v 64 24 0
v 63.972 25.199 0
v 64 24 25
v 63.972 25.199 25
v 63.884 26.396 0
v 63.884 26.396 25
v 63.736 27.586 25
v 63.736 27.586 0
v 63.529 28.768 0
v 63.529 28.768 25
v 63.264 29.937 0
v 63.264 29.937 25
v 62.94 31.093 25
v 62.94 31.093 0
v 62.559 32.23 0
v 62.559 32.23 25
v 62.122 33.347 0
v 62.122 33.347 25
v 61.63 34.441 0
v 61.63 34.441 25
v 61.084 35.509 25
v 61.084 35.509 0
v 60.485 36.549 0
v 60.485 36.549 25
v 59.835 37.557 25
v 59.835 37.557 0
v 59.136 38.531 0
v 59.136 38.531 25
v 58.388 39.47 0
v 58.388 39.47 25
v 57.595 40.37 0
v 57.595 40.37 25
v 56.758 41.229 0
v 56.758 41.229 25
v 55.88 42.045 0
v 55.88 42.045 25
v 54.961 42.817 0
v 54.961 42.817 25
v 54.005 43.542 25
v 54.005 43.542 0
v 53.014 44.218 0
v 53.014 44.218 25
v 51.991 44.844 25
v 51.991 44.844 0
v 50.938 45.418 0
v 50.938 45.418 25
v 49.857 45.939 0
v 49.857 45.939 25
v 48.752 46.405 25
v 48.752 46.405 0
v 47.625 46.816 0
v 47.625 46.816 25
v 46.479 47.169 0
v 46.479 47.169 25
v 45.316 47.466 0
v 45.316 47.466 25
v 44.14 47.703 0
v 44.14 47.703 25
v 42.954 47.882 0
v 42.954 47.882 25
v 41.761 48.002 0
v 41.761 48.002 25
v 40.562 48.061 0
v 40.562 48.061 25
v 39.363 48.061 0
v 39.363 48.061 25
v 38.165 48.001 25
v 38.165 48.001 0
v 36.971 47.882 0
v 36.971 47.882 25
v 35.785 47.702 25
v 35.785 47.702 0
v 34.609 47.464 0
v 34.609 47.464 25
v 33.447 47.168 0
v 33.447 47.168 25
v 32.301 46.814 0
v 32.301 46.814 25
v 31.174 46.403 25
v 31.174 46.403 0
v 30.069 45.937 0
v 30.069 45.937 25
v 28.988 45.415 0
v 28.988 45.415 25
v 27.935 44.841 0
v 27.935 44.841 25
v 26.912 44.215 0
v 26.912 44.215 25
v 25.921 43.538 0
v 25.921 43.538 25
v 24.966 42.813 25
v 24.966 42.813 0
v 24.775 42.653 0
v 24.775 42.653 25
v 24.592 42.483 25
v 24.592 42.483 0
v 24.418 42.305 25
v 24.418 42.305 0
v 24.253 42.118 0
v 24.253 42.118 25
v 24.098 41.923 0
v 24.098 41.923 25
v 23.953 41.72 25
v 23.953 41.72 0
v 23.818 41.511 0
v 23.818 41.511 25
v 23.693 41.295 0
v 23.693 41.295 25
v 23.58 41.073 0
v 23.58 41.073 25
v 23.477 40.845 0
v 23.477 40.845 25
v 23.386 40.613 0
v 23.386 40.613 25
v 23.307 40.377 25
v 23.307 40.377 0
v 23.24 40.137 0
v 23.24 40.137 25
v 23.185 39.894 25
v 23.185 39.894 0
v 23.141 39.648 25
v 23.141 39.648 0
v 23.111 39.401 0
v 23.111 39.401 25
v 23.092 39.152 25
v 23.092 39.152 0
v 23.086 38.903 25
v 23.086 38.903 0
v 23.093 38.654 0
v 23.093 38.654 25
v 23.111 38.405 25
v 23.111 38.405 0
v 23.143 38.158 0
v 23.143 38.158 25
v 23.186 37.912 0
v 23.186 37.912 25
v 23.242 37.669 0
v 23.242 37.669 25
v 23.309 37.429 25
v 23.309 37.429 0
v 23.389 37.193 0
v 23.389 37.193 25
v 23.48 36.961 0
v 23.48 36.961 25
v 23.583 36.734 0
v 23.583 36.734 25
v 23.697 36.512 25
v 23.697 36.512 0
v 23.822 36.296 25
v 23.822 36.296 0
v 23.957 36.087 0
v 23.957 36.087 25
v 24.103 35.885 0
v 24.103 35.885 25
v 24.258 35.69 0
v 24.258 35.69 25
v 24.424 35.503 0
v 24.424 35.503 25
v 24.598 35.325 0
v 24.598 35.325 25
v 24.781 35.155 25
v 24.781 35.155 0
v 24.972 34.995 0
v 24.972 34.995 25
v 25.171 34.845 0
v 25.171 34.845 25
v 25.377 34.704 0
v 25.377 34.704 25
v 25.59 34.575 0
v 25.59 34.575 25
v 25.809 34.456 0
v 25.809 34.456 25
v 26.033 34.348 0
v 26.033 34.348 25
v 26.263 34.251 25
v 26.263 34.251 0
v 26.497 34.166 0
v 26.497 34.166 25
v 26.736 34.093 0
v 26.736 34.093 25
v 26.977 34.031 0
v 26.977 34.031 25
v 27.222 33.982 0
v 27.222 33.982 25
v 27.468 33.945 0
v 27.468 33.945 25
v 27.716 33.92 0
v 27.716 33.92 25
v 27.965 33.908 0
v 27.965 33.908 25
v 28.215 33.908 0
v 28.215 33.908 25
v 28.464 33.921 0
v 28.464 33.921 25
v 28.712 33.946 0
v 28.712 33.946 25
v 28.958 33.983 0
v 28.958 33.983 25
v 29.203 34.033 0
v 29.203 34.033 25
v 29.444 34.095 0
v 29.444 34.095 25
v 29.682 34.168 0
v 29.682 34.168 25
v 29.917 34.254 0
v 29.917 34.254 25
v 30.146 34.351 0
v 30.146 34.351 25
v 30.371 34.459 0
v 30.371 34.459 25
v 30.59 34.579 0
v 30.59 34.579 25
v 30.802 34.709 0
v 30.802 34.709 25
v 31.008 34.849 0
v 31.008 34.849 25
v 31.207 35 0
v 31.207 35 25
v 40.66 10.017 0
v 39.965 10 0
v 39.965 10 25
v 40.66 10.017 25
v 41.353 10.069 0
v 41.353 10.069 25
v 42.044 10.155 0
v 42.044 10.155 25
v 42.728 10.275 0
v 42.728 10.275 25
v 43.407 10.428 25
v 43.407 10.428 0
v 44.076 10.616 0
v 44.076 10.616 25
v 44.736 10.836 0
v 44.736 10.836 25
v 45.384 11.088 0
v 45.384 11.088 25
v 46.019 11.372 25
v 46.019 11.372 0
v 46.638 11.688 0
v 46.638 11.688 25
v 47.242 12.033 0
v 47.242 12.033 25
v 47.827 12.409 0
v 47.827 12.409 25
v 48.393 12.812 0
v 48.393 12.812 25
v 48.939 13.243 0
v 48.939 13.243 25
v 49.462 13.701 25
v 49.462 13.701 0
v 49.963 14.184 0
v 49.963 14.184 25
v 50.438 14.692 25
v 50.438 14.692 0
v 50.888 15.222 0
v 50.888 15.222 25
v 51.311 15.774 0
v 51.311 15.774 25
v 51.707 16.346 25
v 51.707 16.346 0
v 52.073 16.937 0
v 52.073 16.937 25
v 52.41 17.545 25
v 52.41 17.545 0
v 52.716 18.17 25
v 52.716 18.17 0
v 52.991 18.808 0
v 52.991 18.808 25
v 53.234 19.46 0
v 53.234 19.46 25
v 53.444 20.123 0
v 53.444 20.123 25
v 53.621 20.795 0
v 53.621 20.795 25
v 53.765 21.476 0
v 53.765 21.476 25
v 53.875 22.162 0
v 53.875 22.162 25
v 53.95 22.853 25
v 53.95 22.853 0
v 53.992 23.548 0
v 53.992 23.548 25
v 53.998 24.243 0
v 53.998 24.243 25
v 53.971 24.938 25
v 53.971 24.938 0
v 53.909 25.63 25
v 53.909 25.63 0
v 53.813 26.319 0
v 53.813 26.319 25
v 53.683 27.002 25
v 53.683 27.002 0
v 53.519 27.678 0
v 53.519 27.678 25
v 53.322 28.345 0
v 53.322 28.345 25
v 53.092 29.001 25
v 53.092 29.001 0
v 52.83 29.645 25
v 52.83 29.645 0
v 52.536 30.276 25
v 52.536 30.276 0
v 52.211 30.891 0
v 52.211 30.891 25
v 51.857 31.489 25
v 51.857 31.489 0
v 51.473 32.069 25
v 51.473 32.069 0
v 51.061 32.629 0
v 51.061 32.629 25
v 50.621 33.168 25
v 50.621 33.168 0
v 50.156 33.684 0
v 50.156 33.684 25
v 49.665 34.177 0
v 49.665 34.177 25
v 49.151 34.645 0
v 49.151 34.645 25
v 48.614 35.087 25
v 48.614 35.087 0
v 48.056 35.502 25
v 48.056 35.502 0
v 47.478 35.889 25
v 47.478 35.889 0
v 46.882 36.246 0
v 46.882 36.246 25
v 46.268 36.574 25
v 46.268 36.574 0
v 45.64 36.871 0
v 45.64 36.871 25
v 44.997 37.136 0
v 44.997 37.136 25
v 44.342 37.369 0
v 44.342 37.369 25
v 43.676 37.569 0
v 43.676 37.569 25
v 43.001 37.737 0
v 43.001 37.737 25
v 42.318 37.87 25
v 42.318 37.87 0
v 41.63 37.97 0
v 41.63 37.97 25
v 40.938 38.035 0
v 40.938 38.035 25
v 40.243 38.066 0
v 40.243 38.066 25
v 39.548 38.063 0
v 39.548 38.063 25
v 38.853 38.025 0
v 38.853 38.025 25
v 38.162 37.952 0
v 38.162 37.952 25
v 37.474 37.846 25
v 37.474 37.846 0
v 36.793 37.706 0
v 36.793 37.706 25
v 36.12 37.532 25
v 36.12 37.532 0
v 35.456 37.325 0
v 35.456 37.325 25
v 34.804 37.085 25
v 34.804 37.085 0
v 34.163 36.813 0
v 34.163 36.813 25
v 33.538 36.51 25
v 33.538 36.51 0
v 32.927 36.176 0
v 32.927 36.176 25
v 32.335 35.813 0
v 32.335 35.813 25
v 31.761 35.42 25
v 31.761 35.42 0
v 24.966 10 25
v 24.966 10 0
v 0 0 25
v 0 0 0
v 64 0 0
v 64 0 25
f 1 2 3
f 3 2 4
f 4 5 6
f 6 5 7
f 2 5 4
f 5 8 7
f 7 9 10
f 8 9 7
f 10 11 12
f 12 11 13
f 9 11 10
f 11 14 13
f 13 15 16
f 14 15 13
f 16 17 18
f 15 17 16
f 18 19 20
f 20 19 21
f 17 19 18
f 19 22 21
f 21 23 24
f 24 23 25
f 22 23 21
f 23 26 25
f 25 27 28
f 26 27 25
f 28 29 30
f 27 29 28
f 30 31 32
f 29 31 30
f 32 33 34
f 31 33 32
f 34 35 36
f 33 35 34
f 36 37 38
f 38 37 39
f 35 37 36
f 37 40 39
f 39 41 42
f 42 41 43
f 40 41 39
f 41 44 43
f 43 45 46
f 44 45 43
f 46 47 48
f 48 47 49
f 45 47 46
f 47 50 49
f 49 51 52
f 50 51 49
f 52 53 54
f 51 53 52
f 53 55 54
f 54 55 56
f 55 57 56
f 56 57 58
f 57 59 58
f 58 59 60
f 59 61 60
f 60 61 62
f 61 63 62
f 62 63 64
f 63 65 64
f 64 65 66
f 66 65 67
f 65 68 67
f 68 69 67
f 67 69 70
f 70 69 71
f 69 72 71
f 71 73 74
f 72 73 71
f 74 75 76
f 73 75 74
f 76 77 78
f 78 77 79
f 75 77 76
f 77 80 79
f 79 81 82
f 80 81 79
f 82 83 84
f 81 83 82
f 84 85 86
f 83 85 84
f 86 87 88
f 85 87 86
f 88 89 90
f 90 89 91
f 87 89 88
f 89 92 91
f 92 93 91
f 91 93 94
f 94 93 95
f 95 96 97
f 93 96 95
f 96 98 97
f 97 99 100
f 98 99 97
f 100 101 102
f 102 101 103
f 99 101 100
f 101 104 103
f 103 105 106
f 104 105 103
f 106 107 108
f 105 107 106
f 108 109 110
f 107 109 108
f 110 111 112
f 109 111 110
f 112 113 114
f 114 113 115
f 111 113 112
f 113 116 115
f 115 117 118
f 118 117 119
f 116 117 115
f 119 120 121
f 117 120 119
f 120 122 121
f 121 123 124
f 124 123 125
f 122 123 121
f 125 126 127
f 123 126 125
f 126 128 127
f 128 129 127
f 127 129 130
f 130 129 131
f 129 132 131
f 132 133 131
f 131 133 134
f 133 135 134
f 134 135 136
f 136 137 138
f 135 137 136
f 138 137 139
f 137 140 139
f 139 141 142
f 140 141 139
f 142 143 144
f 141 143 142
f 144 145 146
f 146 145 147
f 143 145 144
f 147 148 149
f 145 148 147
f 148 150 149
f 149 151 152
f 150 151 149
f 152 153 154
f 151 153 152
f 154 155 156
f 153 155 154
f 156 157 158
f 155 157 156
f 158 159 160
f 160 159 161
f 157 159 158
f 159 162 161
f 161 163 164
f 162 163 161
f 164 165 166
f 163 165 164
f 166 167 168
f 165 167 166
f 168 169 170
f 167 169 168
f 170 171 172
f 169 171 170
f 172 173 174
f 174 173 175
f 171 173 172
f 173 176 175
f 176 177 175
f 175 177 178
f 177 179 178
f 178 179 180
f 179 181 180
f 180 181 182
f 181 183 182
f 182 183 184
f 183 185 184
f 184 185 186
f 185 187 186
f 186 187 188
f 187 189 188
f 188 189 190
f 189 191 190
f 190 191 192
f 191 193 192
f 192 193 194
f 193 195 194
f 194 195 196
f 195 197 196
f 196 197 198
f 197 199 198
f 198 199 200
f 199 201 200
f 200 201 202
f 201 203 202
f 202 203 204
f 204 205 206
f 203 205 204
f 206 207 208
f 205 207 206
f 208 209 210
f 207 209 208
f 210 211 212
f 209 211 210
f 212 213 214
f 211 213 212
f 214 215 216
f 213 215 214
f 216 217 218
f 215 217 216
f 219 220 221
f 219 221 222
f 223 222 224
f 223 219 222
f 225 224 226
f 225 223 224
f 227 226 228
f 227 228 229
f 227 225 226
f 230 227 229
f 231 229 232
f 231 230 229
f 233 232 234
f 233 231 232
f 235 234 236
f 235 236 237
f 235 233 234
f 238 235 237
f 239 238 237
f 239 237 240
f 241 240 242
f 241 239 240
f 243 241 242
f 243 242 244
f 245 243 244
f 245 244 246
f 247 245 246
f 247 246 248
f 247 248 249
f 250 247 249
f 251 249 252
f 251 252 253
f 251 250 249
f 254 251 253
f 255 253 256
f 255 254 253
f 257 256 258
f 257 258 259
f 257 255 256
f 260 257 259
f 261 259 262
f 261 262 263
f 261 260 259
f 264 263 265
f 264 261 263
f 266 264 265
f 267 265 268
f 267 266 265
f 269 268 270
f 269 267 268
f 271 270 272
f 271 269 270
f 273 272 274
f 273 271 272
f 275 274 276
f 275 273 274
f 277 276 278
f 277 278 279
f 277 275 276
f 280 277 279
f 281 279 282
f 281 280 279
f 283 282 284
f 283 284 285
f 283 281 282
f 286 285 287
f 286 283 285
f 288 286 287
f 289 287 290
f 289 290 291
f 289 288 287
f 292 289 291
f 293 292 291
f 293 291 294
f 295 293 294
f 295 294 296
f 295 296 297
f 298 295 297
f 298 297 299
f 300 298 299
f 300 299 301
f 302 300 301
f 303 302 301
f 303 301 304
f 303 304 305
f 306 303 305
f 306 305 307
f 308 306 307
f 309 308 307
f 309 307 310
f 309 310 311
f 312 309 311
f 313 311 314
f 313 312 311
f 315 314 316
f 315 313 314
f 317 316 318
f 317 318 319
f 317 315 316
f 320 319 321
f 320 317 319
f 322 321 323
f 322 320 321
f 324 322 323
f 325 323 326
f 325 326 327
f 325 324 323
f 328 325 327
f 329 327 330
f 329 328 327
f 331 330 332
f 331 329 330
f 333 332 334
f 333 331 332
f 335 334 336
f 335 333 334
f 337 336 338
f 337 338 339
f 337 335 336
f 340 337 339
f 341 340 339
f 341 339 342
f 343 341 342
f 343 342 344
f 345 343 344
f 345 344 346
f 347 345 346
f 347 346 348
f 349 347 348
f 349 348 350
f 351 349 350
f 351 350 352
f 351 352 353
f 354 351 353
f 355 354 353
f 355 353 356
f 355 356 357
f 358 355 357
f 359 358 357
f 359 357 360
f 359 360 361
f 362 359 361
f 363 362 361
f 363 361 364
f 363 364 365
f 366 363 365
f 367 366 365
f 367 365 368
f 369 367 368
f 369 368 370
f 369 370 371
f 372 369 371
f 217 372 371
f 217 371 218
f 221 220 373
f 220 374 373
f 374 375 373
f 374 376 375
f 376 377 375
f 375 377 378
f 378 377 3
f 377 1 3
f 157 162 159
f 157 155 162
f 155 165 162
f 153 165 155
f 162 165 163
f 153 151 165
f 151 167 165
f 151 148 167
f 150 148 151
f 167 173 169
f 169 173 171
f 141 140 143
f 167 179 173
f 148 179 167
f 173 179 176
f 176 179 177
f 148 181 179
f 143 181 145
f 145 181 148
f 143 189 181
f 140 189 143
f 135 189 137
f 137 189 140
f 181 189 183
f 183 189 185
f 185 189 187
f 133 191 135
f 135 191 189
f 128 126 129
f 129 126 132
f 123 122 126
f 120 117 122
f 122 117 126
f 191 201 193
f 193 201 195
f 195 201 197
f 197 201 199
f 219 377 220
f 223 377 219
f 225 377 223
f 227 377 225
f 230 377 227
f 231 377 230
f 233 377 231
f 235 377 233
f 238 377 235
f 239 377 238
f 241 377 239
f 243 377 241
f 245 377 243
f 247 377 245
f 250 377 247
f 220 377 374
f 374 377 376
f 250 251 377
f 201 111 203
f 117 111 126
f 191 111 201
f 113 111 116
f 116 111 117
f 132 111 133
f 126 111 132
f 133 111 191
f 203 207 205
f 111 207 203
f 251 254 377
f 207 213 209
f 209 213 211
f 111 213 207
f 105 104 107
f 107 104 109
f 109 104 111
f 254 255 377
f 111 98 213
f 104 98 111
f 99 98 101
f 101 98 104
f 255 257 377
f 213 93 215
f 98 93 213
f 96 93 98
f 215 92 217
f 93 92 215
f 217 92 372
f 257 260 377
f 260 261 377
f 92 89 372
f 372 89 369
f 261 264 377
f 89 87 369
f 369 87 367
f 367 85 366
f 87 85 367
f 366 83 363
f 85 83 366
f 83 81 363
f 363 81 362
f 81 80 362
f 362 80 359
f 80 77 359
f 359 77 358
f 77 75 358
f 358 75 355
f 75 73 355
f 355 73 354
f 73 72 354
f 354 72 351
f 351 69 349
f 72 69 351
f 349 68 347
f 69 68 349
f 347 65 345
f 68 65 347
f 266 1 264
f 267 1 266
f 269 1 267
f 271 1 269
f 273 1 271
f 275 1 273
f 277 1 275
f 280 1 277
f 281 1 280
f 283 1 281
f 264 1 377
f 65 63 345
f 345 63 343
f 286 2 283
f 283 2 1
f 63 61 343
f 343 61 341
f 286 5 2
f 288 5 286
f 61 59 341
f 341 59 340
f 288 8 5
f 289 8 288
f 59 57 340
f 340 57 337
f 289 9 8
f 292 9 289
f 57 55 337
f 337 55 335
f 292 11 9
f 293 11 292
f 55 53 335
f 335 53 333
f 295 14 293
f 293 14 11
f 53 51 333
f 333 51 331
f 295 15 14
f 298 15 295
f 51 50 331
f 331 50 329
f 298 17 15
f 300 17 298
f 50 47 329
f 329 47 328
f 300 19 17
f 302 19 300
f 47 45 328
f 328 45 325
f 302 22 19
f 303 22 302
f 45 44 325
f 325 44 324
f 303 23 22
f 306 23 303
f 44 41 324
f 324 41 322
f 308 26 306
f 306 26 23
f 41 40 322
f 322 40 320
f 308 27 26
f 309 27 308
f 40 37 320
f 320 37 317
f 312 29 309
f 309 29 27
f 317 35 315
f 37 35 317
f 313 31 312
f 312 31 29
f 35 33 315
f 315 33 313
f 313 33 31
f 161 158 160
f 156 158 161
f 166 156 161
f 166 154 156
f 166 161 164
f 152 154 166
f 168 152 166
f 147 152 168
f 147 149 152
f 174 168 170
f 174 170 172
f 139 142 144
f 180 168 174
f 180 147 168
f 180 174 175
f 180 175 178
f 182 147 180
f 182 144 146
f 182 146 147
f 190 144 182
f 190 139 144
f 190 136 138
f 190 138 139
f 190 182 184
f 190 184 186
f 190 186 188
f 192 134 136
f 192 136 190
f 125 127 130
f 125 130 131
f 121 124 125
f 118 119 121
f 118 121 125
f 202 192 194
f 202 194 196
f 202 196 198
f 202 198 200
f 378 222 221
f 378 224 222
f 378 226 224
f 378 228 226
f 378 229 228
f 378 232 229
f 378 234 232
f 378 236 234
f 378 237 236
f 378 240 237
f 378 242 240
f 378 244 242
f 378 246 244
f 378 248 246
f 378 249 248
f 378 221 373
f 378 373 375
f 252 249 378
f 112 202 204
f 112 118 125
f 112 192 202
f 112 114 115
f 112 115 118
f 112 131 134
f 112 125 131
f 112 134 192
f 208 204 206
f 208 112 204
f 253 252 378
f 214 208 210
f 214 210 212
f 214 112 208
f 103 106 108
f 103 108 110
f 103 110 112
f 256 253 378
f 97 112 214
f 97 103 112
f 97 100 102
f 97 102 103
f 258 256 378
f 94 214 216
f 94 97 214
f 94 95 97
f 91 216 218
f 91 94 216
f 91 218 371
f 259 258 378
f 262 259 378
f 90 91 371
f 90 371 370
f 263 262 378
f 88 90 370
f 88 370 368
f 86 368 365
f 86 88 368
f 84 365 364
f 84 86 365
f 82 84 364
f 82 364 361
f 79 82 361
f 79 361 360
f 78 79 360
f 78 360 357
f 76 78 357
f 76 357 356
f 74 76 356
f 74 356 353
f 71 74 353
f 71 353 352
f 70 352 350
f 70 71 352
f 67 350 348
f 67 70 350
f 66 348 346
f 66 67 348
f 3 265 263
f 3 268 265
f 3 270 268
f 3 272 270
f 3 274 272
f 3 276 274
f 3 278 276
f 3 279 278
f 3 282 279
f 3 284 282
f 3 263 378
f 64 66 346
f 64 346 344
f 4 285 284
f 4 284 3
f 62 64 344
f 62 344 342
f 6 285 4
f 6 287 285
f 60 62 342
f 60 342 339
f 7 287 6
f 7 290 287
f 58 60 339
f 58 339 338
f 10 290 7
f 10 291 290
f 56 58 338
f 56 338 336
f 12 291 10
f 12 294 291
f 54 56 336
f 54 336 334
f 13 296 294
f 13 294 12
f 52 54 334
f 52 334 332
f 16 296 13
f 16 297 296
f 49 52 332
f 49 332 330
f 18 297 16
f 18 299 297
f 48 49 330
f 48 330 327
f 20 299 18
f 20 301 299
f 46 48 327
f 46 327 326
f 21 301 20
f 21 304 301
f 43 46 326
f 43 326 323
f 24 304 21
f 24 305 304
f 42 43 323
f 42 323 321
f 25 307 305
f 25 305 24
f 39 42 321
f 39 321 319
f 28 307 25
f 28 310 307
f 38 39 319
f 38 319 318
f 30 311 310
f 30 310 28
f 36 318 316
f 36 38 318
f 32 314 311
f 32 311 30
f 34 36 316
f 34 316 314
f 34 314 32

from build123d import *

# Parameters (mm, degrees)
PAD_DEPTH = 25


with BuildPart() as part:
    # Sketch → Pad (new body)
    with BuildSketch(Plane.XY):
        with BuildLine():
            ThreePointArc((64, 24), (50.400723, 45.68526), (24.965644, 42.813397))
            ThreePointArc((24.965644, 42.813397), (24.179475, 35.786169), (31.206703, 35))
            ThreePointArc((39.96481, 10), (53.210772, 28.674471), (31.206703, 35))
            Line((39.96481, 10), (24.965644, 10))
            Line((24.965644, 10), (0, 0))
            Line((0, 0), (64, 0))
            Line((64, 0), (64, 24))
        make_face()
    extrude(amount=PAD_DEPTH)


solid = part.part
